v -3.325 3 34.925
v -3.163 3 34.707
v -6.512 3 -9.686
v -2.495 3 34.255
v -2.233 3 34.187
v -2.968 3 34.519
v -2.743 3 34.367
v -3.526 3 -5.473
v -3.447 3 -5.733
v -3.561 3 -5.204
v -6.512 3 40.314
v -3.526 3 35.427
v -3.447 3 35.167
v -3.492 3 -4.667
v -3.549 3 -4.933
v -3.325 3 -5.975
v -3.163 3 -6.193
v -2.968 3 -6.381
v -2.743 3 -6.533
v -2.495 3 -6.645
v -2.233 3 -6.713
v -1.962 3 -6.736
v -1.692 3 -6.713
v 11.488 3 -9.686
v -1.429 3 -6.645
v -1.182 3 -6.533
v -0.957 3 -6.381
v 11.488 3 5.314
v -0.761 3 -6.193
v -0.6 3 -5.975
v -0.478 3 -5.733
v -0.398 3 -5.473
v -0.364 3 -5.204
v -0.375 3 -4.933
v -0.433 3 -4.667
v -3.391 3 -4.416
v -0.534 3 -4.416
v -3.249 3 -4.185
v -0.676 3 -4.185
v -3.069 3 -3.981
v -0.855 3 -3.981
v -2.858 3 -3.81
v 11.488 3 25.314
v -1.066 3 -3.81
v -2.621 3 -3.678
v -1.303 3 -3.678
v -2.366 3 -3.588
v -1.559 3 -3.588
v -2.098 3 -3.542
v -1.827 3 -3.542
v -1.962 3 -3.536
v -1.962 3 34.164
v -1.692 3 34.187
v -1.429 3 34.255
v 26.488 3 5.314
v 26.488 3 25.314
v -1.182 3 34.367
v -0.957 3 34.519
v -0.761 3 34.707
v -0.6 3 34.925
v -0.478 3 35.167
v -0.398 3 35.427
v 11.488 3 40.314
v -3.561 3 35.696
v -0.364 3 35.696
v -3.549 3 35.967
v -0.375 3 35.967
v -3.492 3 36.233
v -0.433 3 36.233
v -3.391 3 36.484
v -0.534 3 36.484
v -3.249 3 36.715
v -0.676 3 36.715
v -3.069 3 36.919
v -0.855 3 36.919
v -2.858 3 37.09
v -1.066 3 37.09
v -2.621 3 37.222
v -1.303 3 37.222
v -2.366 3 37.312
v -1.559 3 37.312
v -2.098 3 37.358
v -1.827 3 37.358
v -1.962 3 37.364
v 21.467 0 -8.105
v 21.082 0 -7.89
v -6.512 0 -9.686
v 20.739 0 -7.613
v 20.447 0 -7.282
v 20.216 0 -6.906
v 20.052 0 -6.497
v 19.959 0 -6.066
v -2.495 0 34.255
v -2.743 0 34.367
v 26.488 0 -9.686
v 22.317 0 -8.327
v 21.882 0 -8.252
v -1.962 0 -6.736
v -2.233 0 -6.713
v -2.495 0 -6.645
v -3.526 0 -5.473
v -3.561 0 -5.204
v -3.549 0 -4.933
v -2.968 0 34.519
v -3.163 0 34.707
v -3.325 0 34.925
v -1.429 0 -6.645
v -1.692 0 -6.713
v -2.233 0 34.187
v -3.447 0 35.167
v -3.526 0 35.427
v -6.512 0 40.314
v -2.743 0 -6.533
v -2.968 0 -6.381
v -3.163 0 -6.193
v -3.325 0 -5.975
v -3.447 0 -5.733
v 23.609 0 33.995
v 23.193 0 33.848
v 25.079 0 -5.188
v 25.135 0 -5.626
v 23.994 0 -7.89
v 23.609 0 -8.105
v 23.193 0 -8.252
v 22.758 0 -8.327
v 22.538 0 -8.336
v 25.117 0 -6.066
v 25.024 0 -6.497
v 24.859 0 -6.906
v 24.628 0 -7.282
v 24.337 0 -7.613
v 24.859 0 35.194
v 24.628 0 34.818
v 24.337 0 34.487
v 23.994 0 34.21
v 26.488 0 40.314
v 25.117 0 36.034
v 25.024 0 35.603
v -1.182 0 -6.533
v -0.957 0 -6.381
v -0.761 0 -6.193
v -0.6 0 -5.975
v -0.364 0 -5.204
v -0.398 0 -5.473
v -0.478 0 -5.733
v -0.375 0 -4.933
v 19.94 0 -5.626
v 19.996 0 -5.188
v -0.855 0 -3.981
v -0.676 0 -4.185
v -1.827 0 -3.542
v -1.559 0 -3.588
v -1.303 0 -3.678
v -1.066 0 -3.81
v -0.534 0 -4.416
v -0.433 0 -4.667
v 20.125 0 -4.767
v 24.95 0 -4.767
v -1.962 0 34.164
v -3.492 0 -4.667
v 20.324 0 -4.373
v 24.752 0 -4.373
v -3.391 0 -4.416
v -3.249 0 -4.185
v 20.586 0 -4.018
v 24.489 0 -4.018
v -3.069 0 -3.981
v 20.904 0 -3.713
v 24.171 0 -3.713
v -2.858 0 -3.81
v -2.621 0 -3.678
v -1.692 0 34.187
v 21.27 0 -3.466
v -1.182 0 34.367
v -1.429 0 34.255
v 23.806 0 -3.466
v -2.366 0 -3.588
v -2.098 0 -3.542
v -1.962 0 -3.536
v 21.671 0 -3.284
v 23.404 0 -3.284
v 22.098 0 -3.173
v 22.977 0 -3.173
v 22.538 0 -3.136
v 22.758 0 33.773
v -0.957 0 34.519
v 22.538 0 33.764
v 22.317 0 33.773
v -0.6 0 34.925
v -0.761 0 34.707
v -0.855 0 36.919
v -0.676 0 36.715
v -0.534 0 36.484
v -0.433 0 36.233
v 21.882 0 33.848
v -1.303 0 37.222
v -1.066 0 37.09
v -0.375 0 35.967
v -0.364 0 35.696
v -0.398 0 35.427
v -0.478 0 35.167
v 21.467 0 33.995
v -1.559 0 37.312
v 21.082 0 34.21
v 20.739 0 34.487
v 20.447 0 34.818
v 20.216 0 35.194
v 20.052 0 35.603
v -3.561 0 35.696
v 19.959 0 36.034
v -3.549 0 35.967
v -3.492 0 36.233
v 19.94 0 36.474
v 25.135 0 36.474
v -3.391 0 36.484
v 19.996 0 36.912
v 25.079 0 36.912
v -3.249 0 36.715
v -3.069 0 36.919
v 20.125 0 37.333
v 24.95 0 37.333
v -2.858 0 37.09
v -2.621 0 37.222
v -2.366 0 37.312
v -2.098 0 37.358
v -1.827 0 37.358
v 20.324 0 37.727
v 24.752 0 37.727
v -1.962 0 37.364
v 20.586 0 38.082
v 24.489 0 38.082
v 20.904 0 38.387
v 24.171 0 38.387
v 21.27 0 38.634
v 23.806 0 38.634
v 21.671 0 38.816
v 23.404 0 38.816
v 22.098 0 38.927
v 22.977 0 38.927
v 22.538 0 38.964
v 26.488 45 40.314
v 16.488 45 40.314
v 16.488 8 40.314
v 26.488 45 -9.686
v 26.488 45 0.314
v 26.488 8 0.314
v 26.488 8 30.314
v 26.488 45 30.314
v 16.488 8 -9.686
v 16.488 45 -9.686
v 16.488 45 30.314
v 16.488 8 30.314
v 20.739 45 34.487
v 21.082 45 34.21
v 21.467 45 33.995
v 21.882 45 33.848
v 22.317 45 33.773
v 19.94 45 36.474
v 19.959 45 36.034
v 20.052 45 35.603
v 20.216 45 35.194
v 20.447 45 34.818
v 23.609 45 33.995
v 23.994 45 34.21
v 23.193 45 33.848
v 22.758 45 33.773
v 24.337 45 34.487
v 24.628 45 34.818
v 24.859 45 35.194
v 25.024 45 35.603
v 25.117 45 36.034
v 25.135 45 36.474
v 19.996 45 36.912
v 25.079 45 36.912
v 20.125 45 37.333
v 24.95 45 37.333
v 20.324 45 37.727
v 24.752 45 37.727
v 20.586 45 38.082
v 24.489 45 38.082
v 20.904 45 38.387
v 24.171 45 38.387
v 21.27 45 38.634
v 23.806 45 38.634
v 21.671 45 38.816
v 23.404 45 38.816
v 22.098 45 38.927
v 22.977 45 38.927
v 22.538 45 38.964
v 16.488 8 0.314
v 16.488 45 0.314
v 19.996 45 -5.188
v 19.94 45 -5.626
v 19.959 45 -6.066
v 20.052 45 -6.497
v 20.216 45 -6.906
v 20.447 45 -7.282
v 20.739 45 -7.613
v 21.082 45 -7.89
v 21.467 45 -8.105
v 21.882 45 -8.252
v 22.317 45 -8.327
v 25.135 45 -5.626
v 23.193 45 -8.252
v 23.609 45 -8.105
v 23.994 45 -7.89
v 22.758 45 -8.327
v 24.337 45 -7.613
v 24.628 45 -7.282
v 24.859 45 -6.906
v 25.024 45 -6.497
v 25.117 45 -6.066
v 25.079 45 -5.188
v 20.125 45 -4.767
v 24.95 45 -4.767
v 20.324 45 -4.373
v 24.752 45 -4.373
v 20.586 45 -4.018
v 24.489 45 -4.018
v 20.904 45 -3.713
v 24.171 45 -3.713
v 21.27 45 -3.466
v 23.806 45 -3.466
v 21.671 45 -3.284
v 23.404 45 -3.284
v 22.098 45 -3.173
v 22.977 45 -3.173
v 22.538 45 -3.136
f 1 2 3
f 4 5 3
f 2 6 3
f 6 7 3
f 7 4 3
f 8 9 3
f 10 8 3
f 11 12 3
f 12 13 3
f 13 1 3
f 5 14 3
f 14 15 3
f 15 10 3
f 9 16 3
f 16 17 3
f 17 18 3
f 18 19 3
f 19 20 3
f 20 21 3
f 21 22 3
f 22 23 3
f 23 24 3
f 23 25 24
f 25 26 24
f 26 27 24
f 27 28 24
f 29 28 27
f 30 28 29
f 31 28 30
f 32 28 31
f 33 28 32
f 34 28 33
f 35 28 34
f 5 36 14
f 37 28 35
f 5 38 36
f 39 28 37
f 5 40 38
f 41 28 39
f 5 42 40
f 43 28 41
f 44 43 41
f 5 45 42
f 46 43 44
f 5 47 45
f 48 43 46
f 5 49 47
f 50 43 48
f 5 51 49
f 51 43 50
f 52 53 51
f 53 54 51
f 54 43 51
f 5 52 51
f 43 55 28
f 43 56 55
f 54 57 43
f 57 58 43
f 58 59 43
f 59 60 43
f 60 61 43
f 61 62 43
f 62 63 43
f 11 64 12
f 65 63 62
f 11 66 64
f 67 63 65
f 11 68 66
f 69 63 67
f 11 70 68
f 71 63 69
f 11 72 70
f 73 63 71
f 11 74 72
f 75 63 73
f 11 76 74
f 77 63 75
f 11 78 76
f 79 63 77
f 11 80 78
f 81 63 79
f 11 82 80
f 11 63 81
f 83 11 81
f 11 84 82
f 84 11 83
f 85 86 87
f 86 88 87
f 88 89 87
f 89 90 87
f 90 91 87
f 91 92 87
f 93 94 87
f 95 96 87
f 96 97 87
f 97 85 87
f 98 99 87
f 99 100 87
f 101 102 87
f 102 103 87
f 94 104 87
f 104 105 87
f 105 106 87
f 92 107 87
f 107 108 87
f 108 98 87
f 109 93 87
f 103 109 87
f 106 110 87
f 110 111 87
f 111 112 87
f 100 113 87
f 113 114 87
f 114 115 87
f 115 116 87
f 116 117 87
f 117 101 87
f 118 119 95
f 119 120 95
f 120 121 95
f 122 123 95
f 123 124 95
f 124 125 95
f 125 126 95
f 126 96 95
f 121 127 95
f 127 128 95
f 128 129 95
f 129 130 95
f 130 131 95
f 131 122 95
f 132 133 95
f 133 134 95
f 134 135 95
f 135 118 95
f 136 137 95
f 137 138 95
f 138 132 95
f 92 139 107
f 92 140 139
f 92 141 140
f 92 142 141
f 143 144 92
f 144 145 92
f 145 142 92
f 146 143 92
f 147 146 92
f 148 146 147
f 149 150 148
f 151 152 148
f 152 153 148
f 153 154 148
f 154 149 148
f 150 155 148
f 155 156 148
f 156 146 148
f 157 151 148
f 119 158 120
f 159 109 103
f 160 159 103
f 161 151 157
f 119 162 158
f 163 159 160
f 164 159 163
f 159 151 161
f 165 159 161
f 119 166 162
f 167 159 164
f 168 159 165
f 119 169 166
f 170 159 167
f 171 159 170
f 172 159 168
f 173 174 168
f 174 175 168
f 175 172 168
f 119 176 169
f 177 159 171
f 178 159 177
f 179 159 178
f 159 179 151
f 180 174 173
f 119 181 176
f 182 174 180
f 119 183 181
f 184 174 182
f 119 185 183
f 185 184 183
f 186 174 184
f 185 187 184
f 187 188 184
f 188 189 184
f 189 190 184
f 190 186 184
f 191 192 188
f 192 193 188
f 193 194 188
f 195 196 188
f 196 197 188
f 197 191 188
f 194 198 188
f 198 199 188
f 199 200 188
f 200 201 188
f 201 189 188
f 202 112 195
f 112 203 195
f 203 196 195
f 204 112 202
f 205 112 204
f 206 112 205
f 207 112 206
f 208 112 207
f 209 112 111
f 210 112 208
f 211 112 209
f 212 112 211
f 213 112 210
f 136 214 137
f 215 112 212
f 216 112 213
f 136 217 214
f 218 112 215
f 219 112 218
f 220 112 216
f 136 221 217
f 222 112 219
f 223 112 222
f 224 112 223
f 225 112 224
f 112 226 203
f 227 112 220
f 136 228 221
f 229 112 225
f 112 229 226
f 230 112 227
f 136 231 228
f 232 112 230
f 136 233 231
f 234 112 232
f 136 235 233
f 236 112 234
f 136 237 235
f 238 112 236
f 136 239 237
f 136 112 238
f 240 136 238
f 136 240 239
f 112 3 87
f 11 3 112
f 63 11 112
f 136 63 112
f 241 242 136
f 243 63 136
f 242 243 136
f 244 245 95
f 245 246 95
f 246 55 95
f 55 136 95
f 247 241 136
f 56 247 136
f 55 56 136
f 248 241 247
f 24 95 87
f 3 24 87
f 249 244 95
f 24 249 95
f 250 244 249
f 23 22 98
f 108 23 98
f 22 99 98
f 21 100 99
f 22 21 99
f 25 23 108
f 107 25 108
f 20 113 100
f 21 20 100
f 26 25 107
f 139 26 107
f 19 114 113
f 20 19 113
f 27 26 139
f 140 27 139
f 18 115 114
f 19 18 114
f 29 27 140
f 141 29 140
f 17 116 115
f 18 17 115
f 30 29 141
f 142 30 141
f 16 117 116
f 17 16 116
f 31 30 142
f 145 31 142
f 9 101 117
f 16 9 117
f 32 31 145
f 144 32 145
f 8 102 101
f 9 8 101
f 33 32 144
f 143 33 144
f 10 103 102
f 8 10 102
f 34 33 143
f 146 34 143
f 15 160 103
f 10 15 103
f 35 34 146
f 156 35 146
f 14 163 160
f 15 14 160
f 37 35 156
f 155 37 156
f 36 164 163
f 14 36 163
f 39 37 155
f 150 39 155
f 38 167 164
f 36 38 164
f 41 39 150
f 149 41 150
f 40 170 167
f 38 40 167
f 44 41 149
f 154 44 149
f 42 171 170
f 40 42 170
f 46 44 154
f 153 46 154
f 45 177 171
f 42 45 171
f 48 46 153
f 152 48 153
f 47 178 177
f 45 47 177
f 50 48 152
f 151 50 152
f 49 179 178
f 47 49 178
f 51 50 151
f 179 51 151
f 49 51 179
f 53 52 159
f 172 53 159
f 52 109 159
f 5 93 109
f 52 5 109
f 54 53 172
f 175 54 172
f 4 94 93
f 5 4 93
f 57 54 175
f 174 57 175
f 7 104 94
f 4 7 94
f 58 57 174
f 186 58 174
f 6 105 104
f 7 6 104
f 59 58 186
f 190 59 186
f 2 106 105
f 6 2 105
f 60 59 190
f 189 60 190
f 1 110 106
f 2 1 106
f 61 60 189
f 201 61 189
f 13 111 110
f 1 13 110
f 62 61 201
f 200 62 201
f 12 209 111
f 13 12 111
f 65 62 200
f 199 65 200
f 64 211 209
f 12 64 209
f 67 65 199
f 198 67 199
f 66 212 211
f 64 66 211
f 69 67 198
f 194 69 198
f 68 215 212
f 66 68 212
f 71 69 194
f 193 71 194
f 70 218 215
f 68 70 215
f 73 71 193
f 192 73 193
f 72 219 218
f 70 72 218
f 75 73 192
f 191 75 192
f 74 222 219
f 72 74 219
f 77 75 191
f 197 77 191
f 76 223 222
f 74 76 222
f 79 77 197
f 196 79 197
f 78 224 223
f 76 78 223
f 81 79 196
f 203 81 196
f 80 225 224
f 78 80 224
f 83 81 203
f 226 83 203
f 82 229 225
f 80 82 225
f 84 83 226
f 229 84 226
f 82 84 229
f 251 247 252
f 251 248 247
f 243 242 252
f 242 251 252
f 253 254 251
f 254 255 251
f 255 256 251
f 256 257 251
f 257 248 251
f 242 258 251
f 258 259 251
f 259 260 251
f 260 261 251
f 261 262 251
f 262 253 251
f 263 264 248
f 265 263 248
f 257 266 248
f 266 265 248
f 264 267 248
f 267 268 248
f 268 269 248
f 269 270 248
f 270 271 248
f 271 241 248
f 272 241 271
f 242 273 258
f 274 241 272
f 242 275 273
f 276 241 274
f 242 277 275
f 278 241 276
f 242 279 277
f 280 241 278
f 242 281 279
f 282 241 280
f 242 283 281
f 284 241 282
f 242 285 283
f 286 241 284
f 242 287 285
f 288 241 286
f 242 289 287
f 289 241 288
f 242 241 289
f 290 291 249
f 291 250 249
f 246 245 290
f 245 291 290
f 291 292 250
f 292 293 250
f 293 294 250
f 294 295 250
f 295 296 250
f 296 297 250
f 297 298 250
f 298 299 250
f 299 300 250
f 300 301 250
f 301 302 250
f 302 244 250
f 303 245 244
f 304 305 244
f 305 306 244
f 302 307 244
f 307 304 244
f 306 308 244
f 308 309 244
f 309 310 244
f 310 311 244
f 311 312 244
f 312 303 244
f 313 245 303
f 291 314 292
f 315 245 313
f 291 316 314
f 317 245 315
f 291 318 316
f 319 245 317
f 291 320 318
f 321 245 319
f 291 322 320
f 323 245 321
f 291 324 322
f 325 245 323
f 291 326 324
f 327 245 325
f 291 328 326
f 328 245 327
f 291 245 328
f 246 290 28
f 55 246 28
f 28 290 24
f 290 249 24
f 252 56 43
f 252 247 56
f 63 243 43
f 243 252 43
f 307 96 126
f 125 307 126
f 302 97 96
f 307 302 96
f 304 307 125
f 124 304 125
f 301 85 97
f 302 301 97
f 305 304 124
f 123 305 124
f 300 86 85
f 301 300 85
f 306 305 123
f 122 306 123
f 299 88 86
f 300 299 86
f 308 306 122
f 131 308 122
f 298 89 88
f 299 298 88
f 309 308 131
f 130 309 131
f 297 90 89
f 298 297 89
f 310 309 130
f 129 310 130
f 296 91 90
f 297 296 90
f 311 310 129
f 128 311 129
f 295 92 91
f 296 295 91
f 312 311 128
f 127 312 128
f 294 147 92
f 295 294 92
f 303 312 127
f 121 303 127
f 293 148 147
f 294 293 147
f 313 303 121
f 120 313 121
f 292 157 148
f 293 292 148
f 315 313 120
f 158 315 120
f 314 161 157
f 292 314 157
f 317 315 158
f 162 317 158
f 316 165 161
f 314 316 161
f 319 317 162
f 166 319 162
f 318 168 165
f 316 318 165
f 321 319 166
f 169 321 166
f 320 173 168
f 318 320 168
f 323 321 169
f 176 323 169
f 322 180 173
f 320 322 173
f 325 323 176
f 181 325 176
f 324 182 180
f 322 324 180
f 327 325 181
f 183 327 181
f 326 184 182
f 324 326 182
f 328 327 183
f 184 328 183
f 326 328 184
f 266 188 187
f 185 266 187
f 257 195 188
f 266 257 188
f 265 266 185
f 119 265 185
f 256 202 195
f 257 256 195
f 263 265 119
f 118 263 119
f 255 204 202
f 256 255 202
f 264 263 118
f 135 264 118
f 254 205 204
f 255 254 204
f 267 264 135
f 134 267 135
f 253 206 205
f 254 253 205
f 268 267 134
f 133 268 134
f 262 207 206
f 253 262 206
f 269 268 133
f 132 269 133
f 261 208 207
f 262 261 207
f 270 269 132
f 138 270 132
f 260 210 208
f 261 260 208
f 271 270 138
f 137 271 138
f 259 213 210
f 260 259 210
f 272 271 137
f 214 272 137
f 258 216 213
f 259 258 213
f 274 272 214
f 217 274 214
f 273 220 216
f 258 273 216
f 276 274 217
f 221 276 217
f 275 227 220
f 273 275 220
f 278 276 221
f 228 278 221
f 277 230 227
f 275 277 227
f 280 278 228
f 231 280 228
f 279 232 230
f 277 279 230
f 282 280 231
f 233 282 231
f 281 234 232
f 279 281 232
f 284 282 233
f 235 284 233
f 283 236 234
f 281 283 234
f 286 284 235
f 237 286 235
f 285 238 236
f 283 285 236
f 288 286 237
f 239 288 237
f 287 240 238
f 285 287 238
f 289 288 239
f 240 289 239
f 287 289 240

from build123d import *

# Parameters (mm, degrees)
SKETCH1_R           = 1.6
BOSS_EXTRUDE1_DEPTH = 3
SKETCH2_W           = 10
SKETCH2_H           = 10
BOSS_EXTRUDE2_DEPTH = 42
CHAMFER1_SIZE       = 5
SKETCH3_R           = 2.6
CUT_EXTRUDE1_DEPTH  = 52


with BuildPart() as part:
    # Sketch1 → Boss-Extrude1 (new body)
    with BuildSketch(Plane(origin=(0, 0, 0), x_dir=(1, 0, 0), z_dir=(0, 1, 0))):
        Polygon((-6.512396694, 9.685950413), (1.487603306, 9.685950413), (26.487603306, 9.685950413), (26.487603306, -40.314049587), (1.487603306, -40.314049587), (-6.512396694, -40.314049587), align=None)
        with Locations(Location((-1.962396694, -35.764049587, 0), (0, 0, 270))):
            Circle(SKETCH1_R, mode=Mode.SUBTRACT)
        with Locations(Location((-1.962396694, 5.135950413, 0), (0, 0, 270))):
            Circle(SKETCH1_R, mode=Mode.SUBTRACT)
    extrude(amount=BOSS_EXTRUDE1_DEPTH)

    # Sketch2 → Boss-Extrude2 (add)
    with BuildSketch(Plane(origin=(0, 3, 0), x_dir=(1, 0, 0), z_dir=(0, 1, 0))):
        with Locations((21.487603306, -35.314049587)):
            Rectangle(SKETCH2_W, SKETCH2_H)
        with Locations((21.487603306, 4.685950413)):
            Rectangle(SKETCH2_W, SKETCH2_H)
    extrude(amount=BOSS_EXTRUDE2_DEPTH)

    # Chamfer1
    chamfer1_edges = [part.edges().sort_by_distance(p)[0] for p in [
        (21.487603306, 3, 30.314049587),
        (16.487603306, 3, 35.314049587),
        (16.487603306, 3, -4.685950413),
        (21.487603306, 3, 0.314049587),
    ]]
    chamfer(chamfer1_edges, length=CHAMFER1_SIZE)

    # Sketch3 → Cut-Extrude1 (cut)
    with BuildSketch(Plane(origin=(0, 45, 0), x_dir=(1, 0, 0), z_dir=(0, 1, 0))):
        with Locations(Location((22.537603306, -36.364049587, 0), (0, 0, 270))):
            Circle(SKETCH3_R)
        with Locations(Location((22.537603306, 5.735950413, 0), (0, 0, 270))):
            Circle(SKETCH3_R)
    extrude(amount=-CUT_EXTRUDE1_DEPTH, mode=Mode.SUBTRACT)


solid = part.part
